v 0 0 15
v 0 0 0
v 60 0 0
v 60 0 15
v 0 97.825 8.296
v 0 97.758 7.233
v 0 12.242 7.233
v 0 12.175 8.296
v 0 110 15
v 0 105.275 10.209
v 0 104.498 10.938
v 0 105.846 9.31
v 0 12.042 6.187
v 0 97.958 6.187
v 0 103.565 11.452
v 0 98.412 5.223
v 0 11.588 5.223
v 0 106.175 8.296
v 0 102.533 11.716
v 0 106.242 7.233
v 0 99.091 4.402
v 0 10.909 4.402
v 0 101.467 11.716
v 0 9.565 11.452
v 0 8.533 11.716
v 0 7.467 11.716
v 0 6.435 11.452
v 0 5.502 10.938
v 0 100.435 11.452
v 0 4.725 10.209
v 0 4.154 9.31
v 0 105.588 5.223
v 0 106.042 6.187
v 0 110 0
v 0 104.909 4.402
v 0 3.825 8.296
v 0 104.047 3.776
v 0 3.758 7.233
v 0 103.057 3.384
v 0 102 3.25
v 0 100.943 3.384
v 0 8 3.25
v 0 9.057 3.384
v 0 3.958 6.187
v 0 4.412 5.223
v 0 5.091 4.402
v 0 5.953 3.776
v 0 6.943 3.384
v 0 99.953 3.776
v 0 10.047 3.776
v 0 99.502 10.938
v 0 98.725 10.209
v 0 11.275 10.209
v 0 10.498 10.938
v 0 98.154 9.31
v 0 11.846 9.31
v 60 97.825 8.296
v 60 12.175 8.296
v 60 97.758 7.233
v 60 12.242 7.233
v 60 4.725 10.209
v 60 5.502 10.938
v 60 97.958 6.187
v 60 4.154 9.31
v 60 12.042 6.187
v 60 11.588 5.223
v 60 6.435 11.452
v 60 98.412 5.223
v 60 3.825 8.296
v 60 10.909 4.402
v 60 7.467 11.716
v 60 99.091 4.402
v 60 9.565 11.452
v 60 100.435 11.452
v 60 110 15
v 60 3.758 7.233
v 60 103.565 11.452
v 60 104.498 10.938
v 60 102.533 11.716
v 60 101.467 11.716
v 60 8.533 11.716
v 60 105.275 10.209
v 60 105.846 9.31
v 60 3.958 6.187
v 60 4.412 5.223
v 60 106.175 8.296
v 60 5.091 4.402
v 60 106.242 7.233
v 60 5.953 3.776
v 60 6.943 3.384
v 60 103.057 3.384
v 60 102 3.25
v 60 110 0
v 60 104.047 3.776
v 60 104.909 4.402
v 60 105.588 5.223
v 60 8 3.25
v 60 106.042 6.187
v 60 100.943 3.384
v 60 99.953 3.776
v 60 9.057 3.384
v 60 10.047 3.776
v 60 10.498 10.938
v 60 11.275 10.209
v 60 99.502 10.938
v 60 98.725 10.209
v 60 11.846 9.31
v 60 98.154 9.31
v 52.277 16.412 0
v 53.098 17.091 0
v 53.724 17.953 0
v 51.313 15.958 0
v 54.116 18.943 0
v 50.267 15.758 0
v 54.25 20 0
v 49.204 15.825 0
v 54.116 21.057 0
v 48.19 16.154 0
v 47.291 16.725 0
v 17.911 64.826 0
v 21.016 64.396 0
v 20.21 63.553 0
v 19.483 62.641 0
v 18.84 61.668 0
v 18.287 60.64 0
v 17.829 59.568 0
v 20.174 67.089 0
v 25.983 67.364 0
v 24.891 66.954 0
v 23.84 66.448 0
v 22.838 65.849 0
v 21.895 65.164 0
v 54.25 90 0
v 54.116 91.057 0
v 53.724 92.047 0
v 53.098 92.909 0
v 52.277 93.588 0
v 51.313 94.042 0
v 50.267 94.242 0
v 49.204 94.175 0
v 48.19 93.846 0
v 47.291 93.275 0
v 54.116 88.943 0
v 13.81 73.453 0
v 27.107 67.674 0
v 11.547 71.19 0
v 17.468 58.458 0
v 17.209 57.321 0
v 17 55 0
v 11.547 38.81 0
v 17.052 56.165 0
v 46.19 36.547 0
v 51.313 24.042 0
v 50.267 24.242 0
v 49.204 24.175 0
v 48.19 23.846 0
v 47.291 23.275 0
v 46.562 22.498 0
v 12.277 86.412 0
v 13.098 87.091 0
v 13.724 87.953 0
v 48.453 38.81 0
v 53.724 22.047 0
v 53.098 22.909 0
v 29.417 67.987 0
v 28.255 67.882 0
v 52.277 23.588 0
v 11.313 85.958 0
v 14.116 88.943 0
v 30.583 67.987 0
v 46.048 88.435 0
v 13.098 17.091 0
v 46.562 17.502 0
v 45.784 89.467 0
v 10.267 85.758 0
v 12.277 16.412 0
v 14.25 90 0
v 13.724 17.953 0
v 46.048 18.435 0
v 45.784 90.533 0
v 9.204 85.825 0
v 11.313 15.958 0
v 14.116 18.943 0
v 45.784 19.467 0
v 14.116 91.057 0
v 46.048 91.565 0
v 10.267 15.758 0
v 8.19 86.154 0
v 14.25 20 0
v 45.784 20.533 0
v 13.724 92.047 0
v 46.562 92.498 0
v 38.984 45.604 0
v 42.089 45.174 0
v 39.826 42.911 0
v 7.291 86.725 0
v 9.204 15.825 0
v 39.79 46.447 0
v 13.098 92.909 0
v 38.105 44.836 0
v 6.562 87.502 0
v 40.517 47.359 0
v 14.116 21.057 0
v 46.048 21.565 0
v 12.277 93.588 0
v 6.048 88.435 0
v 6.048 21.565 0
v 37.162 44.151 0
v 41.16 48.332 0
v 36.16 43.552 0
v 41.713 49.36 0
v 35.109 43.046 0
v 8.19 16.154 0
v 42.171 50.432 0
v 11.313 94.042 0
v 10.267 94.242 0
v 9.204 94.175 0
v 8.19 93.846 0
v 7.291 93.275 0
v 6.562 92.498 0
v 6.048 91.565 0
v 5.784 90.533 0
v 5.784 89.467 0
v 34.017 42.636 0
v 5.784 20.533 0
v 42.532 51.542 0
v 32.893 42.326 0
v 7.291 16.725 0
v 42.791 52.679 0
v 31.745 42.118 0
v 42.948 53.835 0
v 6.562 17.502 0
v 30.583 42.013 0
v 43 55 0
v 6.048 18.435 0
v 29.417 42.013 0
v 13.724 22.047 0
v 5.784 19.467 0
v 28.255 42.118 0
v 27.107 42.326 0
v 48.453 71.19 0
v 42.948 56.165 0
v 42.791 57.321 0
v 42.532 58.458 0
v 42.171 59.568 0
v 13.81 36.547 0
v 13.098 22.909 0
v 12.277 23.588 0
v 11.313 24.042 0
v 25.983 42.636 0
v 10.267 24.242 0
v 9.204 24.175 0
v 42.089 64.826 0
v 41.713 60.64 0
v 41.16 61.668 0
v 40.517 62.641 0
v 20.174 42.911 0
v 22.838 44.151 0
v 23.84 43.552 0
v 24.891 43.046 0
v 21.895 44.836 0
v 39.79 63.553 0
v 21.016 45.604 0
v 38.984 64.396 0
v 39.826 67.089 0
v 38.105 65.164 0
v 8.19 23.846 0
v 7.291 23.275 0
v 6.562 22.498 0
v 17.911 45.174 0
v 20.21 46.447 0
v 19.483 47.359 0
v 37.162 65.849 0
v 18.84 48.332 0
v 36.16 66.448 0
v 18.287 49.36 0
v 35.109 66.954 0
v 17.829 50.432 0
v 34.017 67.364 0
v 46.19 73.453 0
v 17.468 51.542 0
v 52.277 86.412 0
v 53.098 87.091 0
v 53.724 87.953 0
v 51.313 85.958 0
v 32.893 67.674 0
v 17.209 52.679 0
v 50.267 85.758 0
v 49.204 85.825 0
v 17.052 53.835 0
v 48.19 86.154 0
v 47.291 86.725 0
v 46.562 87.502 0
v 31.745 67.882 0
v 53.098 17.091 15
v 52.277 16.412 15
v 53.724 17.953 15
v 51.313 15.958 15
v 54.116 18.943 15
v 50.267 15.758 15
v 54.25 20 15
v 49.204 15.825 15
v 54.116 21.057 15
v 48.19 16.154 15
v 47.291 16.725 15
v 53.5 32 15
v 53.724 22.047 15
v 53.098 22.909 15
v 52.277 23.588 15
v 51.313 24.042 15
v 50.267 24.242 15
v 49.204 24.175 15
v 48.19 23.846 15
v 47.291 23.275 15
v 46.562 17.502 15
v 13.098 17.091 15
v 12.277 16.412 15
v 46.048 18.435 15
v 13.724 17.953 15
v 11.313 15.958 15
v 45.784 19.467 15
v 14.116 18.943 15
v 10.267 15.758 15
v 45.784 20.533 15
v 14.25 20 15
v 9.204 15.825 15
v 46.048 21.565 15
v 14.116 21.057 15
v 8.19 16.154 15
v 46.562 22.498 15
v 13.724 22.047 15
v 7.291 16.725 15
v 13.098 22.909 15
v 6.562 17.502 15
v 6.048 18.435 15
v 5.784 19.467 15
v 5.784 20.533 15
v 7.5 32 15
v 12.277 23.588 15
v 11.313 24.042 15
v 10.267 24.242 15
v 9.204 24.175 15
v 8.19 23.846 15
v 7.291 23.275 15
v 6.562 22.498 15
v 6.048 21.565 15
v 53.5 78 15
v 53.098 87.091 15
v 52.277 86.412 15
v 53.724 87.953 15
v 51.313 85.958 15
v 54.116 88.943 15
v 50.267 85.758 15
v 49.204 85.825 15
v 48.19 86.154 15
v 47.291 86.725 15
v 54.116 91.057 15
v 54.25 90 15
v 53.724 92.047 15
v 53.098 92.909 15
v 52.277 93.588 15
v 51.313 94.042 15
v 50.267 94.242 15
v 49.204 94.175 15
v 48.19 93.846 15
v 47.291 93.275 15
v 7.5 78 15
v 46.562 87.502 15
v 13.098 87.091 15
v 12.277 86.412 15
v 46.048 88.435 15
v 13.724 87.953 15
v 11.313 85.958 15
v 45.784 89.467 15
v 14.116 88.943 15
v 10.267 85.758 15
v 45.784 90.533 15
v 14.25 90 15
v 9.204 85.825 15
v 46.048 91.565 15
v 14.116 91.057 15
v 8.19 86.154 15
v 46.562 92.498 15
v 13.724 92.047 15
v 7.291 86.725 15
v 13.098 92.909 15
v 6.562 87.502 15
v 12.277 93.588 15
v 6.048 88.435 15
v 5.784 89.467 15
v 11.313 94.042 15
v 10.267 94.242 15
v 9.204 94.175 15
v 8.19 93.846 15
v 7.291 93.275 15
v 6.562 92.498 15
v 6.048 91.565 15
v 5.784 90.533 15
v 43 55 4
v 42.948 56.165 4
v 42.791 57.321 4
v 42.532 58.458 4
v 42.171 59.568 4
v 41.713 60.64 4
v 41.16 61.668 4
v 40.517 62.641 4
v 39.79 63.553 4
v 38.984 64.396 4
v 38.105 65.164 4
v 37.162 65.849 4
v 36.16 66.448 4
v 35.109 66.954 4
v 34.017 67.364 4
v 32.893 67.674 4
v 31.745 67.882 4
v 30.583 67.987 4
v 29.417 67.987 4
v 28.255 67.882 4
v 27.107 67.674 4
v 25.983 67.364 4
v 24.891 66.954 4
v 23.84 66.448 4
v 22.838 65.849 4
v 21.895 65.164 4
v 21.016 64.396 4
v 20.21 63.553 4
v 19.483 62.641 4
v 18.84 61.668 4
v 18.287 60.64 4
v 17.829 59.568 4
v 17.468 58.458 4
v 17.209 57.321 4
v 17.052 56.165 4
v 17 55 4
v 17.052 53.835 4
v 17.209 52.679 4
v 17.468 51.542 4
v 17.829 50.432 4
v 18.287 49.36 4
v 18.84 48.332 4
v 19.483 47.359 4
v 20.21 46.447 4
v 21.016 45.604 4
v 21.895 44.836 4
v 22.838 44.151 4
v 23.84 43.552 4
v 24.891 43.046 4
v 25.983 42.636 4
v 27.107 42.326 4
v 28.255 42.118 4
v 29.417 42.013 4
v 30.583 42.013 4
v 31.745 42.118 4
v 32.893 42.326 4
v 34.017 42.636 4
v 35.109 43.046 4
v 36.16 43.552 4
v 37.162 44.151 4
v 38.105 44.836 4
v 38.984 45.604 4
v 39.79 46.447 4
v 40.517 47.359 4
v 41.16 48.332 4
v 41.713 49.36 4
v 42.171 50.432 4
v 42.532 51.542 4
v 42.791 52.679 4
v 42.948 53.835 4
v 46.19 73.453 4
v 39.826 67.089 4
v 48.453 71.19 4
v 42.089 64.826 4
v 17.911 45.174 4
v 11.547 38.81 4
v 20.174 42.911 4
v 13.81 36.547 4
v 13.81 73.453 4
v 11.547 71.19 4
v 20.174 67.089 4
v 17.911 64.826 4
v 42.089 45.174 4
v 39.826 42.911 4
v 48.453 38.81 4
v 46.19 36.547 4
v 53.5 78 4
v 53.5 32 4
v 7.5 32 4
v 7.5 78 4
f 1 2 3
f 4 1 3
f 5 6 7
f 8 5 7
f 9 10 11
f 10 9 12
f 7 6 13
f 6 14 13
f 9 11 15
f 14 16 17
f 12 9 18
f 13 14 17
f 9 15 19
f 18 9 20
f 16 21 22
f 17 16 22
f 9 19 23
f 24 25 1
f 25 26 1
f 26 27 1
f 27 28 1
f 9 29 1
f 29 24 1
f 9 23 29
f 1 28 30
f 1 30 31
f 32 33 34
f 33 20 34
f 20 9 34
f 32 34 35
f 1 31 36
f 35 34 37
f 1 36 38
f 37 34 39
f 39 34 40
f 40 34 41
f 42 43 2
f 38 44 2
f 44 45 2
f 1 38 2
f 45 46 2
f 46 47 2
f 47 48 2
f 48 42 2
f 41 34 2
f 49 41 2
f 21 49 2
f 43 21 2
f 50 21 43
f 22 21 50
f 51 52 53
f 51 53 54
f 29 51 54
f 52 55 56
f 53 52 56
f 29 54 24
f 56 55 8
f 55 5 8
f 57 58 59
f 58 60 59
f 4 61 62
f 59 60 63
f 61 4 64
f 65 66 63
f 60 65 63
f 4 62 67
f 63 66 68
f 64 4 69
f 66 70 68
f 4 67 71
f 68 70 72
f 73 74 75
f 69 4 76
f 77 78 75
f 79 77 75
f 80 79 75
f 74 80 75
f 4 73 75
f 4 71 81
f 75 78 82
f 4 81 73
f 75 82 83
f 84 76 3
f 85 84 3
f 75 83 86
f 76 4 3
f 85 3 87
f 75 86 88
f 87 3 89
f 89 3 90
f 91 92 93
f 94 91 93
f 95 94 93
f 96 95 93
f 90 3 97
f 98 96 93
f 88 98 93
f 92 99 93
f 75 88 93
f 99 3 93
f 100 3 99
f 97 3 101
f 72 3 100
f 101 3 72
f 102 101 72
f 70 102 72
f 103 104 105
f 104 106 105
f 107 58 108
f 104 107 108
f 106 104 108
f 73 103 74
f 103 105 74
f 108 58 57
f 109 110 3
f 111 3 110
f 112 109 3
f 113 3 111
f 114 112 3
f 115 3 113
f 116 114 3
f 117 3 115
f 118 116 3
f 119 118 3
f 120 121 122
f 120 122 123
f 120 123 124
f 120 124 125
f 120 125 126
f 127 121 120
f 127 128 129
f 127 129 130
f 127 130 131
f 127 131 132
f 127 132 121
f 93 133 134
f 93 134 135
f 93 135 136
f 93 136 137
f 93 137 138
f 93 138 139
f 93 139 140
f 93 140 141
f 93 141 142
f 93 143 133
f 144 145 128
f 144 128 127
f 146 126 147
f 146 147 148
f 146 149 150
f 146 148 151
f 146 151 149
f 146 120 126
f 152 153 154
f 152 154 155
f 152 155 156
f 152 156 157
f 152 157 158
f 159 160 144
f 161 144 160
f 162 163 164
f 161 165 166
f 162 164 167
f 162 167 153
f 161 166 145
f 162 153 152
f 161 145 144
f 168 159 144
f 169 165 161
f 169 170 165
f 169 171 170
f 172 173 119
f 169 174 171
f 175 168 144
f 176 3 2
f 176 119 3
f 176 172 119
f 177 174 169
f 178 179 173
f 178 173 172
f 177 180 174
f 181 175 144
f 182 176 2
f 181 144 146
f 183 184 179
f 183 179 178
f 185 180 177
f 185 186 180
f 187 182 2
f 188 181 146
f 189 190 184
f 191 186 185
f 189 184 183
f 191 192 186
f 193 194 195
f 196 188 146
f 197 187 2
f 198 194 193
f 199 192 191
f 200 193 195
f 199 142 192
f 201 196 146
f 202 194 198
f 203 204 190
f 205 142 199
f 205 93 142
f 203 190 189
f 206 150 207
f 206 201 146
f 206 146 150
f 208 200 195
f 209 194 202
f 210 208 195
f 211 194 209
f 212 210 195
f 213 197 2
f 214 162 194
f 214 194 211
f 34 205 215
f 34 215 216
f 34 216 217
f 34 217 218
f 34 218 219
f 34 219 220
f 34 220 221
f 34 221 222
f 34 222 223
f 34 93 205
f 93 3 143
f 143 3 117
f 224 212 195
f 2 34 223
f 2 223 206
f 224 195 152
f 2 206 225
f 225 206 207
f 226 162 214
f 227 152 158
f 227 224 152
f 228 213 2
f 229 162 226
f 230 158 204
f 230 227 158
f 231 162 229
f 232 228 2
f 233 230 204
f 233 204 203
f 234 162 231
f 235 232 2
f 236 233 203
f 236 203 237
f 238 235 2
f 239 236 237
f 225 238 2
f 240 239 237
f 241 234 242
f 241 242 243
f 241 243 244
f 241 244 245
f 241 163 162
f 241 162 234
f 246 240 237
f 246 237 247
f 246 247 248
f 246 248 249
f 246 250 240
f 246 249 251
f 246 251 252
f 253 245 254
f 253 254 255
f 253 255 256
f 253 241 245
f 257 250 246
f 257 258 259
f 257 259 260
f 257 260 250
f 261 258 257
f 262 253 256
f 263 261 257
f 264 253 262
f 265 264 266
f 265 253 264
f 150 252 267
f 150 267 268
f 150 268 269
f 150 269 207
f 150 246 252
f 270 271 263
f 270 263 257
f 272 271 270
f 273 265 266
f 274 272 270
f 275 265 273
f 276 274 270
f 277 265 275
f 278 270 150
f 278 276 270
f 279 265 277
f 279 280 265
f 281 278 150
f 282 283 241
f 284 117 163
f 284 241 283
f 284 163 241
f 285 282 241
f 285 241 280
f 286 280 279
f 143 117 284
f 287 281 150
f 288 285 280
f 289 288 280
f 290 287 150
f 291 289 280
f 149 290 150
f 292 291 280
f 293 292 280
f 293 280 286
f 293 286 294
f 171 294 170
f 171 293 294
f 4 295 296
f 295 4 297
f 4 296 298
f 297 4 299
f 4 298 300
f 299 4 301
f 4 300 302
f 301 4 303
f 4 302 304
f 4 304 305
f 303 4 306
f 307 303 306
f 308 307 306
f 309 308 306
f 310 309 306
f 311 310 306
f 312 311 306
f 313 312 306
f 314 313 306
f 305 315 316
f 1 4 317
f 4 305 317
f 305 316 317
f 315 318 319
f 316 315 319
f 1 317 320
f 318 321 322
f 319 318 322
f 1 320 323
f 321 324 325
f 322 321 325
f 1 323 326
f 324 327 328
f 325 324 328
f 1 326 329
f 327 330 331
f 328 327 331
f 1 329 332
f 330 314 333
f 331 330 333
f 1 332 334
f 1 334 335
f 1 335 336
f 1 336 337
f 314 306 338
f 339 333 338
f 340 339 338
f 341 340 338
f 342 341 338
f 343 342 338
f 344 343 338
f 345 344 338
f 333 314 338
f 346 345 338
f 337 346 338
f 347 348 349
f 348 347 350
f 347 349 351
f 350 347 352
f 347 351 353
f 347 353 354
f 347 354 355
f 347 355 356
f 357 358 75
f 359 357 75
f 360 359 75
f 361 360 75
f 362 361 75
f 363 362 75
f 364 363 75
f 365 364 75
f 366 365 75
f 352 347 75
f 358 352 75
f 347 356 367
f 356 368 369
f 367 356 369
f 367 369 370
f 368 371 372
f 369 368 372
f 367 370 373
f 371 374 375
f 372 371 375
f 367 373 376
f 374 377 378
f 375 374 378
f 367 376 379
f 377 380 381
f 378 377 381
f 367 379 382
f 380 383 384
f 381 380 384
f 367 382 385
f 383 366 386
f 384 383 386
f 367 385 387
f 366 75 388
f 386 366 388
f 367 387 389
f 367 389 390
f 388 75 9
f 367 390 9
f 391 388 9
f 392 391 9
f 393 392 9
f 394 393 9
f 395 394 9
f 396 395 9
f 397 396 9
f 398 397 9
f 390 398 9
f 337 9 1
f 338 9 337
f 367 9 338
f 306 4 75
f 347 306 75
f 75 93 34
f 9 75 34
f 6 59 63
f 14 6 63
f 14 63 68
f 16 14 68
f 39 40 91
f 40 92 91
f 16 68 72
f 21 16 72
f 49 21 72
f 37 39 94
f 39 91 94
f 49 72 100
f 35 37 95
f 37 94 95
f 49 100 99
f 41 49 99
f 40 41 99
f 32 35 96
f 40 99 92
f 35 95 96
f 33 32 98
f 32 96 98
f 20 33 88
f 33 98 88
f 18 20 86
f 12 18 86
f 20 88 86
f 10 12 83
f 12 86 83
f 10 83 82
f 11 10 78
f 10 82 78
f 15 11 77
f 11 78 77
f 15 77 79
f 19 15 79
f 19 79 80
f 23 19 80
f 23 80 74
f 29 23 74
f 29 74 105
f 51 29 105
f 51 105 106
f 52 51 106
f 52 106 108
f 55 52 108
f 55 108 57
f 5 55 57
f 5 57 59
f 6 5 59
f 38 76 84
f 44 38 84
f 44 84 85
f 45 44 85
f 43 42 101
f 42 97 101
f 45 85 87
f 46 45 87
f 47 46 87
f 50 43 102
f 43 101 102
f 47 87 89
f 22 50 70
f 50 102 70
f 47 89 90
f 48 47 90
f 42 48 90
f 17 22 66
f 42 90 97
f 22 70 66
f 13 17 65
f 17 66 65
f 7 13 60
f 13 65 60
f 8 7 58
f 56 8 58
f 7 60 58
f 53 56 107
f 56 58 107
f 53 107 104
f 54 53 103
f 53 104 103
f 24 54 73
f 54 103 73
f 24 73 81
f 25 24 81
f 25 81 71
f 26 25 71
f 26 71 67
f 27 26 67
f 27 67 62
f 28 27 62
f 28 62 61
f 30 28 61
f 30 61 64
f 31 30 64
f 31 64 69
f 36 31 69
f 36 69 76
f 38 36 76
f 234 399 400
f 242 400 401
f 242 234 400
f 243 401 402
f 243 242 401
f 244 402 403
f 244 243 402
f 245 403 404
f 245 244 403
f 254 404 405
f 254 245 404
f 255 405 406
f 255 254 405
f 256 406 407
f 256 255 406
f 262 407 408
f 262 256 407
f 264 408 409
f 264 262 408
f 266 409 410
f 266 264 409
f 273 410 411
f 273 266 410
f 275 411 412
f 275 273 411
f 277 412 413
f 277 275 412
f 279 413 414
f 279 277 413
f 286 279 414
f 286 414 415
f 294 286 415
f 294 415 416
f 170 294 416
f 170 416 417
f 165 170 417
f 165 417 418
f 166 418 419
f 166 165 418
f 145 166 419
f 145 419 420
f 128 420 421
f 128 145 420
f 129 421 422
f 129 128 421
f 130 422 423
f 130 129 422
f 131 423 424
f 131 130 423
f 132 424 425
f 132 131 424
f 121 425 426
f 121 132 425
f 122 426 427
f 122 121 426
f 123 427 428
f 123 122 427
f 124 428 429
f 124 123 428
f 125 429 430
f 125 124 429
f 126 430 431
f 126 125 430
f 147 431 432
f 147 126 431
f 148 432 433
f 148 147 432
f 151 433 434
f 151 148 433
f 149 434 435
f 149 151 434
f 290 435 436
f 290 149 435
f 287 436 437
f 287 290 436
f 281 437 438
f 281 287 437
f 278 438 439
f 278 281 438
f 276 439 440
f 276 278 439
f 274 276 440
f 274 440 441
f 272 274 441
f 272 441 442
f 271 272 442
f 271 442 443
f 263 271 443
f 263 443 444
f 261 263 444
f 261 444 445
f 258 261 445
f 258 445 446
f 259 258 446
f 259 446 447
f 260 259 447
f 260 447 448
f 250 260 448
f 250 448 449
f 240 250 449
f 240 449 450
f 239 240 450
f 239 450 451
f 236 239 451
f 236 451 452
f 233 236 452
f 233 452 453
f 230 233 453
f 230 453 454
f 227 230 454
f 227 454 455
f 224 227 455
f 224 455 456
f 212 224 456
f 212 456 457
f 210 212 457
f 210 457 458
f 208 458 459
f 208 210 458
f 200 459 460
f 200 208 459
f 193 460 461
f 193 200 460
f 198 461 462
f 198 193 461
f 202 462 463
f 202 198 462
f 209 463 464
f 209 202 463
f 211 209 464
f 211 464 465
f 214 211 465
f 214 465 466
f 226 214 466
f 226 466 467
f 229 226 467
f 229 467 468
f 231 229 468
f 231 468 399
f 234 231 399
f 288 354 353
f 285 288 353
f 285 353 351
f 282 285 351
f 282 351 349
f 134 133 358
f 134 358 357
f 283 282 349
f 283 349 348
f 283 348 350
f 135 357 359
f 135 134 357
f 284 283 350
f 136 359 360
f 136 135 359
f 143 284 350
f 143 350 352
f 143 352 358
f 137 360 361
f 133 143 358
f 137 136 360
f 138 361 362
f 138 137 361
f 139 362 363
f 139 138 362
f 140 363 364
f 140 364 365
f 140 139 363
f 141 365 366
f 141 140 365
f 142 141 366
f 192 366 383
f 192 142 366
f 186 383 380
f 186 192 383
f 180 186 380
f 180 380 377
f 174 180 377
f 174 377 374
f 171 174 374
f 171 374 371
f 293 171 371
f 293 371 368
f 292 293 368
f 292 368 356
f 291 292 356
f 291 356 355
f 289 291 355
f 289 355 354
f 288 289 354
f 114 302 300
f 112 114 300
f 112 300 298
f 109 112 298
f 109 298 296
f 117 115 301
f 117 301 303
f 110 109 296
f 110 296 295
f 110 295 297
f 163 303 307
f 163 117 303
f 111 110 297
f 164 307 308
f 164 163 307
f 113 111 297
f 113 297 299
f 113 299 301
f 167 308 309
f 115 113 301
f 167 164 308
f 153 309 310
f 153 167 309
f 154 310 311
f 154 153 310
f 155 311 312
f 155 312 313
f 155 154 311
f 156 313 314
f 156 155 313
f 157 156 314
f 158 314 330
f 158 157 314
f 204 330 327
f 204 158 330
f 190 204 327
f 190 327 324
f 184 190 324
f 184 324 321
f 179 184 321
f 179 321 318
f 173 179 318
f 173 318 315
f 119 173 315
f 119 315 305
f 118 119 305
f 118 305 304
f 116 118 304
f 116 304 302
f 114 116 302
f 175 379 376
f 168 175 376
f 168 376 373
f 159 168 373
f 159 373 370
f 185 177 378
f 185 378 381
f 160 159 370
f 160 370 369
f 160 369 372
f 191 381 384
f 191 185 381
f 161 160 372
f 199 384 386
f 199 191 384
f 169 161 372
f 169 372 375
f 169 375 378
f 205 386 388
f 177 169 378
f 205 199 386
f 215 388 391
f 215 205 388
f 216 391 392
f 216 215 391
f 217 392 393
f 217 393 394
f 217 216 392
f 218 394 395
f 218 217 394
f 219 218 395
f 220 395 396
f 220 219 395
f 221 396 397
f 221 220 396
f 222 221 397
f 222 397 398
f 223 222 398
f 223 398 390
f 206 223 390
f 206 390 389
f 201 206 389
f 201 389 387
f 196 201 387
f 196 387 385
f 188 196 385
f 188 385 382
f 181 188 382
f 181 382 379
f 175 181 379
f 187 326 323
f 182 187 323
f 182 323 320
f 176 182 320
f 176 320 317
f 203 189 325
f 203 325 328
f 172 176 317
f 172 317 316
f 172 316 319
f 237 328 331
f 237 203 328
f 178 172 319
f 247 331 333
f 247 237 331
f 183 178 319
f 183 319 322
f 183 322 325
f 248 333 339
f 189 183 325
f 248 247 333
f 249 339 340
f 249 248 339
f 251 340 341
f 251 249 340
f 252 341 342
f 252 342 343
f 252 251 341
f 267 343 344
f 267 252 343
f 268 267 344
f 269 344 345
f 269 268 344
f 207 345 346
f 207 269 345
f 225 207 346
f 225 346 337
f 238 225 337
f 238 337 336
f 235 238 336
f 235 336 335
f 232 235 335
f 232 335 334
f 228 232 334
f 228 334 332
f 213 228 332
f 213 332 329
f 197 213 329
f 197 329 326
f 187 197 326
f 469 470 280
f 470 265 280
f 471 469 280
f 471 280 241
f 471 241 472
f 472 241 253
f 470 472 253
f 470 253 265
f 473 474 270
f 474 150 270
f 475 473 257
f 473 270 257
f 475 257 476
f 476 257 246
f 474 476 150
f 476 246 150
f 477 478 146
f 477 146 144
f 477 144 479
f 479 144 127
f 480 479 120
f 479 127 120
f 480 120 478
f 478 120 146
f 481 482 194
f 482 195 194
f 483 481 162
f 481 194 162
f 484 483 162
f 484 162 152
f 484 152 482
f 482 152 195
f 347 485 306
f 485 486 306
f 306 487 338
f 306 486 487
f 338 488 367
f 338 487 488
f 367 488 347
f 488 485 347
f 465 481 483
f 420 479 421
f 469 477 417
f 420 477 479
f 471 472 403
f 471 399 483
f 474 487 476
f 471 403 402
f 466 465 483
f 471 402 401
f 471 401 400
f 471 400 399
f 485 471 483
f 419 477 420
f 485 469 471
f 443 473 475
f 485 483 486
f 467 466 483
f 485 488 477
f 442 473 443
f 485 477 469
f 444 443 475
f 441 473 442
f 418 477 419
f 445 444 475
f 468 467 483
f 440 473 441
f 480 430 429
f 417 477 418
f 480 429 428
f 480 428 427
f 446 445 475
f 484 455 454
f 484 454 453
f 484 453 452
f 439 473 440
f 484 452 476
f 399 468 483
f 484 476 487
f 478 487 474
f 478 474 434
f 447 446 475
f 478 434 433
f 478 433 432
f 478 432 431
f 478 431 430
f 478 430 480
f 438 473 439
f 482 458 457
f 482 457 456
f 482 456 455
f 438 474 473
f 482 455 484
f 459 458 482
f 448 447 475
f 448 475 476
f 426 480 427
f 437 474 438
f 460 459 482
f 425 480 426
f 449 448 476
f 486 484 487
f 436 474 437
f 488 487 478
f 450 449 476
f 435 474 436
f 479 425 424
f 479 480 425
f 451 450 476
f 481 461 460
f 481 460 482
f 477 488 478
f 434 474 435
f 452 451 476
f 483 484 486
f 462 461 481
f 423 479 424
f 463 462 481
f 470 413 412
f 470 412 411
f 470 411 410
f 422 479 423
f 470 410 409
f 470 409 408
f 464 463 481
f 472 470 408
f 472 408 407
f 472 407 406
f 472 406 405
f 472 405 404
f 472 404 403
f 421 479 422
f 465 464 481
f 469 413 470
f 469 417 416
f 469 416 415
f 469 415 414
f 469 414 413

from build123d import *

# Parameters (mm, degrees)
BOX_W                   = 46
BOX_H                   = 46
BOX_DEPTH               = 20
CYLINDER001_R           = 4.25
CYLINDER001_DEPTH       = 76
CYLINDER001_PITCH_ANGLE = 90
CYLINDER_R              = 4.25
CYLINDER_DEPTH          = 76
CYLINDER_PITCH_ANGLE    = 90
SKETCH_W                = 60
SKETCH_H                = 110
SKETCH_R                = 4.25
SKETCH_R_2              = 13
PAD_DEPTH               = 15


with BuildPart() as cubo:
    # Box → Box (new body)
    with BuildSketch(Plane(origin=(7.5, 32, 4), x_dir=(1, 0, 0), z_dir=(0, 0, 1))):
        with Locations((23, 23)):
            Rectangle(BOX_W, BOX_H)
    extrude(amount=BOX_DEPTH)


with BuildPart() as cilindro001:
    # Cylinder001 → Cylinder001 (new body)
    with BuildSketch(Plane.XY):
        Circle(CYLINDER001_R)
    extrude(amount=CYLINDER001_DEPTH)


with BuildPart() as cilindro001_1:
    # Cylinder001 pitch: moved
    add(cilindro001.part.rotate(Axis((0, 0, 0), (0, 1, 0)), CYLINDER001_PITCH_ANGLE))


with BuildPart() as cilindro001_2:
    # Cylinder001 placement: moved
    add(cilindro001_1.part.moved(Location((-1, 8, 7.5))))


with BuildPart() as cilindro:
    # Cylinder → Cylinder (new body)
    with BuildSketch(Plane.XY):
        Circle(CYLINDER_R)
    extrude(amount=CYLINDER_DEPTH)


with BuildPart() as cilindro_1:
    # Cylinder pitch: moved
    add(cilindro.part.rotate(Axis((0, 0, 0), (0, 1, 0)), CYLINDER_PITCH_ANGLE))


with BuildPart() as cilindro_2:
    # Cylinder placement: moved
    add(cilindro_1.part.moved(Location((-1, 102, 7.5))))


with BuildPart() as cut002:
    # Sketch → Pad (new body)
    with BuildSketch(Plane.XY):
        with Locations((30, 55)):
            Rectangle(SKETCH_W, SKETCH_H)
        with Locations((10, 20)):
            Circle(SKETCH_R, mode=Mode.SUBTRACT)
        with Locations((50, 20)):
            Circle(SKETCH_R, mode=Mode.SUBTRACT)
        with Locations((10, 90)):
            Circle(SKETCH_R, mode=Mode.SUBTRACT)
        with Locations((50, 90)):
            Circle(SKETCH_R, mode=Mode.SUBTRACT)
        with Locations((30, 55)):
            Circle(SKETCH_R_2, mode=Mode.SUBTRACT)
        Polygon((39.826039, 67.088781), (46.19, 73.452742), (48.452742, 71.19), (42.088781, 64.826039), align=None, mode=Mode.SUBTRACT)
        Polygon((39.826039, 42.911219), (42.088781, 45.173961), (48.452742, 38.81), (46.19, 36.547258), align=None, mode=Mode.SUBTRACT)
        Polygon((11.547258, 71.19), (13.81, 73.452742), (20.173961, 67.088781), (17.911219, 64.826039), align=None, mode=Mode.SUBTRACT)
        Polygon((11.547258, 38.81), (17.911219, 45.173961), (20.173961, 42.911219), (13.81, 36.547258), align=None, mode=Mode.SUBTRACT)
    extrude(amount=PAD_DEPTH)

    # Cut: cut Cilindro
    add(cilindro_2.part, mode=Mode.SUBTRACT)

    # Cut001: cut Cilindro001
    add(cilindro001_2.part, mode=Mode.SUBTRACT)

    # Cut002: cut Cubo
    add(cubo.part, mode=Mode.SUBTRACT)


solid = cut002.part
